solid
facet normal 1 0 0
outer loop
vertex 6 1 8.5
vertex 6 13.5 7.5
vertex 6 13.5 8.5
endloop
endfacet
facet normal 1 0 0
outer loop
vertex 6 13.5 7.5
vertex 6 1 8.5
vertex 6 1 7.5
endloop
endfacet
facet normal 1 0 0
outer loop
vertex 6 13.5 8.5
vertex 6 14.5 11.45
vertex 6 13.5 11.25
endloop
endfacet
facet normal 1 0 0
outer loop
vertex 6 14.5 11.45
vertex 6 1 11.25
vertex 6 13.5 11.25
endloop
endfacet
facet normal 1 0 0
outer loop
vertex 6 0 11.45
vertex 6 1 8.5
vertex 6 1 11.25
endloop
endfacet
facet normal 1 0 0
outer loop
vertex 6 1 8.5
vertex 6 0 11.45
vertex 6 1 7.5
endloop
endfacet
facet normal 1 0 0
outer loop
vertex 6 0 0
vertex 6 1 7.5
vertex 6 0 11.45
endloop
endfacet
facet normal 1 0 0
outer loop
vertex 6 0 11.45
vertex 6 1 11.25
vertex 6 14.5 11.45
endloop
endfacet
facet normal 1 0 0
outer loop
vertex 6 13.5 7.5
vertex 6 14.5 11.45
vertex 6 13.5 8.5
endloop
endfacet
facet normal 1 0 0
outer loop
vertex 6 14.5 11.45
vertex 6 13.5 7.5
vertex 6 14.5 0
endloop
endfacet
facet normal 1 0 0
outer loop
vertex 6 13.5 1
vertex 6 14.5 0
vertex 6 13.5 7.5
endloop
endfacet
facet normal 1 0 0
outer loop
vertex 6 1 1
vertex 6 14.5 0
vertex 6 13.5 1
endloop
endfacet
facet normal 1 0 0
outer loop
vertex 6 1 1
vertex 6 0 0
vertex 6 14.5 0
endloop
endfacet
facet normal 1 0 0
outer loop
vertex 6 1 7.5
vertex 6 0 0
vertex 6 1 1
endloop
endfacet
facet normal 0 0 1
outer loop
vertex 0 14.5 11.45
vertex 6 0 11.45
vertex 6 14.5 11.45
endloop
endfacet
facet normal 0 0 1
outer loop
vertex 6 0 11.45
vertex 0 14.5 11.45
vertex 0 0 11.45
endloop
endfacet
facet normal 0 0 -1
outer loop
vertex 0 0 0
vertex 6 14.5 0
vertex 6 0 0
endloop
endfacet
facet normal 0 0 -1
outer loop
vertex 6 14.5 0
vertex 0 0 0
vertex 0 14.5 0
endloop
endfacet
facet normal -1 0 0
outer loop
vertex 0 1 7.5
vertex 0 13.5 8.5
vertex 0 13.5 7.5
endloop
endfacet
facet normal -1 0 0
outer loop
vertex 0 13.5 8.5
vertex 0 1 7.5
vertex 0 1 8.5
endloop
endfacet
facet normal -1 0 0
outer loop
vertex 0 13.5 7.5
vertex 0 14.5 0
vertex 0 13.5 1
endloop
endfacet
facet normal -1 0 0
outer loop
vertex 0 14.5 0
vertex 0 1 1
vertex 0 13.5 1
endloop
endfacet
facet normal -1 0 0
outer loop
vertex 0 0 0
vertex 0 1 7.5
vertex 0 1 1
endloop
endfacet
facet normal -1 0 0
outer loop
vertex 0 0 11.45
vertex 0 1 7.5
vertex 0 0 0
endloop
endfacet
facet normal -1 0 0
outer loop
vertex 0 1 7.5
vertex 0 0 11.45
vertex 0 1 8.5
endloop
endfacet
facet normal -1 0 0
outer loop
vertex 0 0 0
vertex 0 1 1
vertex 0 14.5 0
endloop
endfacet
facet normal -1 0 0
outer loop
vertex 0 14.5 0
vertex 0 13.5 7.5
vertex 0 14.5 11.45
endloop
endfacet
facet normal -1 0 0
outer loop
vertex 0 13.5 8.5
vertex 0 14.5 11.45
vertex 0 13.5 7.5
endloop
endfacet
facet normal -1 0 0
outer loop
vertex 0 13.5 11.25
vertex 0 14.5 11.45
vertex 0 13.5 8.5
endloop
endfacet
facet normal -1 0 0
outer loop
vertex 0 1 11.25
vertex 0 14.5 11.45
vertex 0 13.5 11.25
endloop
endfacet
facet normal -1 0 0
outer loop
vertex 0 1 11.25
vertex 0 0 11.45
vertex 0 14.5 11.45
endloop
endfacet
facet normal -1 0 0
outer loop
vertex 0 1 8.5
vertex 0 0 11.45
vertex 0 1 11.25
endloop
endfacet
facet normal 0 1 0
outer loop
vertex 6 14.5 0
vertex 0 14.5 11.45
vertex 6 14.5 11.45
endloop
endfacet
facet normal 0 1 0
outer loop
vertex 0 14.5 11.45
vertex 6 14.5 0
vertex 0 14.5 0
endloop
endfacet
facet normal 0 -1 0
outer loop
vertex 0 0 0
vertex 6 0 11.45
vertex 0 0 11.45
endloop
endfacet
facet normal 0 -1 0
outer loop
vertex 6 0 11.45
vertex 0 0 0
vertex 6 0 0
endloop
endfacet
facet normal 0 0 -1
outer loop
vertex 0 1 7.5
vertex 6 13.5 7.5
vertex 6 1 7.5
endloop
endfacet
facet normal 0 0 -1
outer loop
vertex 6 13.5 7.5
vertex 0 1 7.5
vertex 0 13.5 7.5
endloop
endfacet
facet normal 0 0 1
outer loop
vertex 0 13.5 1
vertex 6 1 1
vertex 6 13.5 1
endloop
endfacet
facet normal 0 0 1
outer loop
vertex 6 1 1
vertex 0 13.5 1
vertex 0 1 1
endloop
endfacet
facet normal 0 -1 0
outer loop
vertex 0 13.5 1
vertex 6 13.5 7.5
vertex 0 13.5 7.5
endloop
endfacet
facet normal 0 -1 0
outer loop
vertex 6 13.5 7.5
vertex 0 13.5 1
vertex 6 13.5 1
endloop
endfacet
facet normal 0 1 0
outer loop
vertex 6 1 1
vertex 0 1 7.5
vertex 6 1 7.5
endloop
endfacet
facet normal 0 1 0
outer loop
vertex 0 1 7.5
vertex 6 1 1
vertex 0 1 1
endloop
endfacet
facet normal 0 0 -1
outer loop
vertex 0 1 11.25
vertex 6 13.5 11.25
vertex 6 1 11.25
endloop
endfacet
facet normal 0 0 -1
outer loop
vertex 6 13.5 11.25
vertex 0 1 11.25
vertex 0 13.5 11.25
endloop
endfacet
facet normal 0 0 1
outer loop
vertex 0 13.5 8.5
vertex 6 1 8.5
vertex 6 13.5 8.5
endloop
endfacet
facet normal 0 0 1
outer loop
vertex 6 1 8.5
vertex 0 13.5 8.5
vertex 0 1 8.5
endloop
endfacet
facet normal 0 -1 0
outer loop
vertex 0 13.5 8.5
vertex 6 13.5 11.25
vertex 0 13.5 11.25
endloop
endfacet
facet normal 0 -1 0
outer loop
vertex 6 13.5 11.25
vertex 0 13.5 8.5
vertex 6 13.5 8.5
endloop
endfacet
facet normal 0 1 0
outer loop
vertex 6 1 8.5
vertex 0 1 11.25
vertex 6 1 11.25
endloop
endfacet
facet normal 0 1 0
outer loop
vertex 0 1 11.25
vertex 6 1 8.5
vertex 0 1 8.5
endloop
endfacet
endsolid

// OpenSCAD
// This is a support for a 0.91" OLED screen above a ESP32-WROOM module on a PCB.
// The support slides onto the end of the screen.

z_below = 8.5;      // Space between the OLED screen at the top of the ESP32 module.
oled_width = 12.5;  // Width (screen height) of the OLED screen, including extra space.
board_z = 2.75;     // Space for the height of the OLED screen.
support_width = 6;  // Width of the support (along the width of the OLED screen.
top_wall = 0.2;     // Thickness of the top of the support, above the screen (thin).
wall = 1;           // Thickness of support walls that are not above the top of the OLED screen.

module OLEDSupport() {
  total_height = z_below + board_z + top_wall;
  difference() {
    // The body of the support.
    cube([support_width, oled_width + 2*wall, total_height]);
    // The space below the board.
    translate([-1, 1, wall]) {
      cube([support_width + 2, oled_width, z_below - 2 * wall]);
    }
    // A space for the screen to slide into.
    translate([-1, 1, z_below]) {
      cube([support_width + 2, oled_width, board_z]);
    }
  }
}

OLEDSupport();
